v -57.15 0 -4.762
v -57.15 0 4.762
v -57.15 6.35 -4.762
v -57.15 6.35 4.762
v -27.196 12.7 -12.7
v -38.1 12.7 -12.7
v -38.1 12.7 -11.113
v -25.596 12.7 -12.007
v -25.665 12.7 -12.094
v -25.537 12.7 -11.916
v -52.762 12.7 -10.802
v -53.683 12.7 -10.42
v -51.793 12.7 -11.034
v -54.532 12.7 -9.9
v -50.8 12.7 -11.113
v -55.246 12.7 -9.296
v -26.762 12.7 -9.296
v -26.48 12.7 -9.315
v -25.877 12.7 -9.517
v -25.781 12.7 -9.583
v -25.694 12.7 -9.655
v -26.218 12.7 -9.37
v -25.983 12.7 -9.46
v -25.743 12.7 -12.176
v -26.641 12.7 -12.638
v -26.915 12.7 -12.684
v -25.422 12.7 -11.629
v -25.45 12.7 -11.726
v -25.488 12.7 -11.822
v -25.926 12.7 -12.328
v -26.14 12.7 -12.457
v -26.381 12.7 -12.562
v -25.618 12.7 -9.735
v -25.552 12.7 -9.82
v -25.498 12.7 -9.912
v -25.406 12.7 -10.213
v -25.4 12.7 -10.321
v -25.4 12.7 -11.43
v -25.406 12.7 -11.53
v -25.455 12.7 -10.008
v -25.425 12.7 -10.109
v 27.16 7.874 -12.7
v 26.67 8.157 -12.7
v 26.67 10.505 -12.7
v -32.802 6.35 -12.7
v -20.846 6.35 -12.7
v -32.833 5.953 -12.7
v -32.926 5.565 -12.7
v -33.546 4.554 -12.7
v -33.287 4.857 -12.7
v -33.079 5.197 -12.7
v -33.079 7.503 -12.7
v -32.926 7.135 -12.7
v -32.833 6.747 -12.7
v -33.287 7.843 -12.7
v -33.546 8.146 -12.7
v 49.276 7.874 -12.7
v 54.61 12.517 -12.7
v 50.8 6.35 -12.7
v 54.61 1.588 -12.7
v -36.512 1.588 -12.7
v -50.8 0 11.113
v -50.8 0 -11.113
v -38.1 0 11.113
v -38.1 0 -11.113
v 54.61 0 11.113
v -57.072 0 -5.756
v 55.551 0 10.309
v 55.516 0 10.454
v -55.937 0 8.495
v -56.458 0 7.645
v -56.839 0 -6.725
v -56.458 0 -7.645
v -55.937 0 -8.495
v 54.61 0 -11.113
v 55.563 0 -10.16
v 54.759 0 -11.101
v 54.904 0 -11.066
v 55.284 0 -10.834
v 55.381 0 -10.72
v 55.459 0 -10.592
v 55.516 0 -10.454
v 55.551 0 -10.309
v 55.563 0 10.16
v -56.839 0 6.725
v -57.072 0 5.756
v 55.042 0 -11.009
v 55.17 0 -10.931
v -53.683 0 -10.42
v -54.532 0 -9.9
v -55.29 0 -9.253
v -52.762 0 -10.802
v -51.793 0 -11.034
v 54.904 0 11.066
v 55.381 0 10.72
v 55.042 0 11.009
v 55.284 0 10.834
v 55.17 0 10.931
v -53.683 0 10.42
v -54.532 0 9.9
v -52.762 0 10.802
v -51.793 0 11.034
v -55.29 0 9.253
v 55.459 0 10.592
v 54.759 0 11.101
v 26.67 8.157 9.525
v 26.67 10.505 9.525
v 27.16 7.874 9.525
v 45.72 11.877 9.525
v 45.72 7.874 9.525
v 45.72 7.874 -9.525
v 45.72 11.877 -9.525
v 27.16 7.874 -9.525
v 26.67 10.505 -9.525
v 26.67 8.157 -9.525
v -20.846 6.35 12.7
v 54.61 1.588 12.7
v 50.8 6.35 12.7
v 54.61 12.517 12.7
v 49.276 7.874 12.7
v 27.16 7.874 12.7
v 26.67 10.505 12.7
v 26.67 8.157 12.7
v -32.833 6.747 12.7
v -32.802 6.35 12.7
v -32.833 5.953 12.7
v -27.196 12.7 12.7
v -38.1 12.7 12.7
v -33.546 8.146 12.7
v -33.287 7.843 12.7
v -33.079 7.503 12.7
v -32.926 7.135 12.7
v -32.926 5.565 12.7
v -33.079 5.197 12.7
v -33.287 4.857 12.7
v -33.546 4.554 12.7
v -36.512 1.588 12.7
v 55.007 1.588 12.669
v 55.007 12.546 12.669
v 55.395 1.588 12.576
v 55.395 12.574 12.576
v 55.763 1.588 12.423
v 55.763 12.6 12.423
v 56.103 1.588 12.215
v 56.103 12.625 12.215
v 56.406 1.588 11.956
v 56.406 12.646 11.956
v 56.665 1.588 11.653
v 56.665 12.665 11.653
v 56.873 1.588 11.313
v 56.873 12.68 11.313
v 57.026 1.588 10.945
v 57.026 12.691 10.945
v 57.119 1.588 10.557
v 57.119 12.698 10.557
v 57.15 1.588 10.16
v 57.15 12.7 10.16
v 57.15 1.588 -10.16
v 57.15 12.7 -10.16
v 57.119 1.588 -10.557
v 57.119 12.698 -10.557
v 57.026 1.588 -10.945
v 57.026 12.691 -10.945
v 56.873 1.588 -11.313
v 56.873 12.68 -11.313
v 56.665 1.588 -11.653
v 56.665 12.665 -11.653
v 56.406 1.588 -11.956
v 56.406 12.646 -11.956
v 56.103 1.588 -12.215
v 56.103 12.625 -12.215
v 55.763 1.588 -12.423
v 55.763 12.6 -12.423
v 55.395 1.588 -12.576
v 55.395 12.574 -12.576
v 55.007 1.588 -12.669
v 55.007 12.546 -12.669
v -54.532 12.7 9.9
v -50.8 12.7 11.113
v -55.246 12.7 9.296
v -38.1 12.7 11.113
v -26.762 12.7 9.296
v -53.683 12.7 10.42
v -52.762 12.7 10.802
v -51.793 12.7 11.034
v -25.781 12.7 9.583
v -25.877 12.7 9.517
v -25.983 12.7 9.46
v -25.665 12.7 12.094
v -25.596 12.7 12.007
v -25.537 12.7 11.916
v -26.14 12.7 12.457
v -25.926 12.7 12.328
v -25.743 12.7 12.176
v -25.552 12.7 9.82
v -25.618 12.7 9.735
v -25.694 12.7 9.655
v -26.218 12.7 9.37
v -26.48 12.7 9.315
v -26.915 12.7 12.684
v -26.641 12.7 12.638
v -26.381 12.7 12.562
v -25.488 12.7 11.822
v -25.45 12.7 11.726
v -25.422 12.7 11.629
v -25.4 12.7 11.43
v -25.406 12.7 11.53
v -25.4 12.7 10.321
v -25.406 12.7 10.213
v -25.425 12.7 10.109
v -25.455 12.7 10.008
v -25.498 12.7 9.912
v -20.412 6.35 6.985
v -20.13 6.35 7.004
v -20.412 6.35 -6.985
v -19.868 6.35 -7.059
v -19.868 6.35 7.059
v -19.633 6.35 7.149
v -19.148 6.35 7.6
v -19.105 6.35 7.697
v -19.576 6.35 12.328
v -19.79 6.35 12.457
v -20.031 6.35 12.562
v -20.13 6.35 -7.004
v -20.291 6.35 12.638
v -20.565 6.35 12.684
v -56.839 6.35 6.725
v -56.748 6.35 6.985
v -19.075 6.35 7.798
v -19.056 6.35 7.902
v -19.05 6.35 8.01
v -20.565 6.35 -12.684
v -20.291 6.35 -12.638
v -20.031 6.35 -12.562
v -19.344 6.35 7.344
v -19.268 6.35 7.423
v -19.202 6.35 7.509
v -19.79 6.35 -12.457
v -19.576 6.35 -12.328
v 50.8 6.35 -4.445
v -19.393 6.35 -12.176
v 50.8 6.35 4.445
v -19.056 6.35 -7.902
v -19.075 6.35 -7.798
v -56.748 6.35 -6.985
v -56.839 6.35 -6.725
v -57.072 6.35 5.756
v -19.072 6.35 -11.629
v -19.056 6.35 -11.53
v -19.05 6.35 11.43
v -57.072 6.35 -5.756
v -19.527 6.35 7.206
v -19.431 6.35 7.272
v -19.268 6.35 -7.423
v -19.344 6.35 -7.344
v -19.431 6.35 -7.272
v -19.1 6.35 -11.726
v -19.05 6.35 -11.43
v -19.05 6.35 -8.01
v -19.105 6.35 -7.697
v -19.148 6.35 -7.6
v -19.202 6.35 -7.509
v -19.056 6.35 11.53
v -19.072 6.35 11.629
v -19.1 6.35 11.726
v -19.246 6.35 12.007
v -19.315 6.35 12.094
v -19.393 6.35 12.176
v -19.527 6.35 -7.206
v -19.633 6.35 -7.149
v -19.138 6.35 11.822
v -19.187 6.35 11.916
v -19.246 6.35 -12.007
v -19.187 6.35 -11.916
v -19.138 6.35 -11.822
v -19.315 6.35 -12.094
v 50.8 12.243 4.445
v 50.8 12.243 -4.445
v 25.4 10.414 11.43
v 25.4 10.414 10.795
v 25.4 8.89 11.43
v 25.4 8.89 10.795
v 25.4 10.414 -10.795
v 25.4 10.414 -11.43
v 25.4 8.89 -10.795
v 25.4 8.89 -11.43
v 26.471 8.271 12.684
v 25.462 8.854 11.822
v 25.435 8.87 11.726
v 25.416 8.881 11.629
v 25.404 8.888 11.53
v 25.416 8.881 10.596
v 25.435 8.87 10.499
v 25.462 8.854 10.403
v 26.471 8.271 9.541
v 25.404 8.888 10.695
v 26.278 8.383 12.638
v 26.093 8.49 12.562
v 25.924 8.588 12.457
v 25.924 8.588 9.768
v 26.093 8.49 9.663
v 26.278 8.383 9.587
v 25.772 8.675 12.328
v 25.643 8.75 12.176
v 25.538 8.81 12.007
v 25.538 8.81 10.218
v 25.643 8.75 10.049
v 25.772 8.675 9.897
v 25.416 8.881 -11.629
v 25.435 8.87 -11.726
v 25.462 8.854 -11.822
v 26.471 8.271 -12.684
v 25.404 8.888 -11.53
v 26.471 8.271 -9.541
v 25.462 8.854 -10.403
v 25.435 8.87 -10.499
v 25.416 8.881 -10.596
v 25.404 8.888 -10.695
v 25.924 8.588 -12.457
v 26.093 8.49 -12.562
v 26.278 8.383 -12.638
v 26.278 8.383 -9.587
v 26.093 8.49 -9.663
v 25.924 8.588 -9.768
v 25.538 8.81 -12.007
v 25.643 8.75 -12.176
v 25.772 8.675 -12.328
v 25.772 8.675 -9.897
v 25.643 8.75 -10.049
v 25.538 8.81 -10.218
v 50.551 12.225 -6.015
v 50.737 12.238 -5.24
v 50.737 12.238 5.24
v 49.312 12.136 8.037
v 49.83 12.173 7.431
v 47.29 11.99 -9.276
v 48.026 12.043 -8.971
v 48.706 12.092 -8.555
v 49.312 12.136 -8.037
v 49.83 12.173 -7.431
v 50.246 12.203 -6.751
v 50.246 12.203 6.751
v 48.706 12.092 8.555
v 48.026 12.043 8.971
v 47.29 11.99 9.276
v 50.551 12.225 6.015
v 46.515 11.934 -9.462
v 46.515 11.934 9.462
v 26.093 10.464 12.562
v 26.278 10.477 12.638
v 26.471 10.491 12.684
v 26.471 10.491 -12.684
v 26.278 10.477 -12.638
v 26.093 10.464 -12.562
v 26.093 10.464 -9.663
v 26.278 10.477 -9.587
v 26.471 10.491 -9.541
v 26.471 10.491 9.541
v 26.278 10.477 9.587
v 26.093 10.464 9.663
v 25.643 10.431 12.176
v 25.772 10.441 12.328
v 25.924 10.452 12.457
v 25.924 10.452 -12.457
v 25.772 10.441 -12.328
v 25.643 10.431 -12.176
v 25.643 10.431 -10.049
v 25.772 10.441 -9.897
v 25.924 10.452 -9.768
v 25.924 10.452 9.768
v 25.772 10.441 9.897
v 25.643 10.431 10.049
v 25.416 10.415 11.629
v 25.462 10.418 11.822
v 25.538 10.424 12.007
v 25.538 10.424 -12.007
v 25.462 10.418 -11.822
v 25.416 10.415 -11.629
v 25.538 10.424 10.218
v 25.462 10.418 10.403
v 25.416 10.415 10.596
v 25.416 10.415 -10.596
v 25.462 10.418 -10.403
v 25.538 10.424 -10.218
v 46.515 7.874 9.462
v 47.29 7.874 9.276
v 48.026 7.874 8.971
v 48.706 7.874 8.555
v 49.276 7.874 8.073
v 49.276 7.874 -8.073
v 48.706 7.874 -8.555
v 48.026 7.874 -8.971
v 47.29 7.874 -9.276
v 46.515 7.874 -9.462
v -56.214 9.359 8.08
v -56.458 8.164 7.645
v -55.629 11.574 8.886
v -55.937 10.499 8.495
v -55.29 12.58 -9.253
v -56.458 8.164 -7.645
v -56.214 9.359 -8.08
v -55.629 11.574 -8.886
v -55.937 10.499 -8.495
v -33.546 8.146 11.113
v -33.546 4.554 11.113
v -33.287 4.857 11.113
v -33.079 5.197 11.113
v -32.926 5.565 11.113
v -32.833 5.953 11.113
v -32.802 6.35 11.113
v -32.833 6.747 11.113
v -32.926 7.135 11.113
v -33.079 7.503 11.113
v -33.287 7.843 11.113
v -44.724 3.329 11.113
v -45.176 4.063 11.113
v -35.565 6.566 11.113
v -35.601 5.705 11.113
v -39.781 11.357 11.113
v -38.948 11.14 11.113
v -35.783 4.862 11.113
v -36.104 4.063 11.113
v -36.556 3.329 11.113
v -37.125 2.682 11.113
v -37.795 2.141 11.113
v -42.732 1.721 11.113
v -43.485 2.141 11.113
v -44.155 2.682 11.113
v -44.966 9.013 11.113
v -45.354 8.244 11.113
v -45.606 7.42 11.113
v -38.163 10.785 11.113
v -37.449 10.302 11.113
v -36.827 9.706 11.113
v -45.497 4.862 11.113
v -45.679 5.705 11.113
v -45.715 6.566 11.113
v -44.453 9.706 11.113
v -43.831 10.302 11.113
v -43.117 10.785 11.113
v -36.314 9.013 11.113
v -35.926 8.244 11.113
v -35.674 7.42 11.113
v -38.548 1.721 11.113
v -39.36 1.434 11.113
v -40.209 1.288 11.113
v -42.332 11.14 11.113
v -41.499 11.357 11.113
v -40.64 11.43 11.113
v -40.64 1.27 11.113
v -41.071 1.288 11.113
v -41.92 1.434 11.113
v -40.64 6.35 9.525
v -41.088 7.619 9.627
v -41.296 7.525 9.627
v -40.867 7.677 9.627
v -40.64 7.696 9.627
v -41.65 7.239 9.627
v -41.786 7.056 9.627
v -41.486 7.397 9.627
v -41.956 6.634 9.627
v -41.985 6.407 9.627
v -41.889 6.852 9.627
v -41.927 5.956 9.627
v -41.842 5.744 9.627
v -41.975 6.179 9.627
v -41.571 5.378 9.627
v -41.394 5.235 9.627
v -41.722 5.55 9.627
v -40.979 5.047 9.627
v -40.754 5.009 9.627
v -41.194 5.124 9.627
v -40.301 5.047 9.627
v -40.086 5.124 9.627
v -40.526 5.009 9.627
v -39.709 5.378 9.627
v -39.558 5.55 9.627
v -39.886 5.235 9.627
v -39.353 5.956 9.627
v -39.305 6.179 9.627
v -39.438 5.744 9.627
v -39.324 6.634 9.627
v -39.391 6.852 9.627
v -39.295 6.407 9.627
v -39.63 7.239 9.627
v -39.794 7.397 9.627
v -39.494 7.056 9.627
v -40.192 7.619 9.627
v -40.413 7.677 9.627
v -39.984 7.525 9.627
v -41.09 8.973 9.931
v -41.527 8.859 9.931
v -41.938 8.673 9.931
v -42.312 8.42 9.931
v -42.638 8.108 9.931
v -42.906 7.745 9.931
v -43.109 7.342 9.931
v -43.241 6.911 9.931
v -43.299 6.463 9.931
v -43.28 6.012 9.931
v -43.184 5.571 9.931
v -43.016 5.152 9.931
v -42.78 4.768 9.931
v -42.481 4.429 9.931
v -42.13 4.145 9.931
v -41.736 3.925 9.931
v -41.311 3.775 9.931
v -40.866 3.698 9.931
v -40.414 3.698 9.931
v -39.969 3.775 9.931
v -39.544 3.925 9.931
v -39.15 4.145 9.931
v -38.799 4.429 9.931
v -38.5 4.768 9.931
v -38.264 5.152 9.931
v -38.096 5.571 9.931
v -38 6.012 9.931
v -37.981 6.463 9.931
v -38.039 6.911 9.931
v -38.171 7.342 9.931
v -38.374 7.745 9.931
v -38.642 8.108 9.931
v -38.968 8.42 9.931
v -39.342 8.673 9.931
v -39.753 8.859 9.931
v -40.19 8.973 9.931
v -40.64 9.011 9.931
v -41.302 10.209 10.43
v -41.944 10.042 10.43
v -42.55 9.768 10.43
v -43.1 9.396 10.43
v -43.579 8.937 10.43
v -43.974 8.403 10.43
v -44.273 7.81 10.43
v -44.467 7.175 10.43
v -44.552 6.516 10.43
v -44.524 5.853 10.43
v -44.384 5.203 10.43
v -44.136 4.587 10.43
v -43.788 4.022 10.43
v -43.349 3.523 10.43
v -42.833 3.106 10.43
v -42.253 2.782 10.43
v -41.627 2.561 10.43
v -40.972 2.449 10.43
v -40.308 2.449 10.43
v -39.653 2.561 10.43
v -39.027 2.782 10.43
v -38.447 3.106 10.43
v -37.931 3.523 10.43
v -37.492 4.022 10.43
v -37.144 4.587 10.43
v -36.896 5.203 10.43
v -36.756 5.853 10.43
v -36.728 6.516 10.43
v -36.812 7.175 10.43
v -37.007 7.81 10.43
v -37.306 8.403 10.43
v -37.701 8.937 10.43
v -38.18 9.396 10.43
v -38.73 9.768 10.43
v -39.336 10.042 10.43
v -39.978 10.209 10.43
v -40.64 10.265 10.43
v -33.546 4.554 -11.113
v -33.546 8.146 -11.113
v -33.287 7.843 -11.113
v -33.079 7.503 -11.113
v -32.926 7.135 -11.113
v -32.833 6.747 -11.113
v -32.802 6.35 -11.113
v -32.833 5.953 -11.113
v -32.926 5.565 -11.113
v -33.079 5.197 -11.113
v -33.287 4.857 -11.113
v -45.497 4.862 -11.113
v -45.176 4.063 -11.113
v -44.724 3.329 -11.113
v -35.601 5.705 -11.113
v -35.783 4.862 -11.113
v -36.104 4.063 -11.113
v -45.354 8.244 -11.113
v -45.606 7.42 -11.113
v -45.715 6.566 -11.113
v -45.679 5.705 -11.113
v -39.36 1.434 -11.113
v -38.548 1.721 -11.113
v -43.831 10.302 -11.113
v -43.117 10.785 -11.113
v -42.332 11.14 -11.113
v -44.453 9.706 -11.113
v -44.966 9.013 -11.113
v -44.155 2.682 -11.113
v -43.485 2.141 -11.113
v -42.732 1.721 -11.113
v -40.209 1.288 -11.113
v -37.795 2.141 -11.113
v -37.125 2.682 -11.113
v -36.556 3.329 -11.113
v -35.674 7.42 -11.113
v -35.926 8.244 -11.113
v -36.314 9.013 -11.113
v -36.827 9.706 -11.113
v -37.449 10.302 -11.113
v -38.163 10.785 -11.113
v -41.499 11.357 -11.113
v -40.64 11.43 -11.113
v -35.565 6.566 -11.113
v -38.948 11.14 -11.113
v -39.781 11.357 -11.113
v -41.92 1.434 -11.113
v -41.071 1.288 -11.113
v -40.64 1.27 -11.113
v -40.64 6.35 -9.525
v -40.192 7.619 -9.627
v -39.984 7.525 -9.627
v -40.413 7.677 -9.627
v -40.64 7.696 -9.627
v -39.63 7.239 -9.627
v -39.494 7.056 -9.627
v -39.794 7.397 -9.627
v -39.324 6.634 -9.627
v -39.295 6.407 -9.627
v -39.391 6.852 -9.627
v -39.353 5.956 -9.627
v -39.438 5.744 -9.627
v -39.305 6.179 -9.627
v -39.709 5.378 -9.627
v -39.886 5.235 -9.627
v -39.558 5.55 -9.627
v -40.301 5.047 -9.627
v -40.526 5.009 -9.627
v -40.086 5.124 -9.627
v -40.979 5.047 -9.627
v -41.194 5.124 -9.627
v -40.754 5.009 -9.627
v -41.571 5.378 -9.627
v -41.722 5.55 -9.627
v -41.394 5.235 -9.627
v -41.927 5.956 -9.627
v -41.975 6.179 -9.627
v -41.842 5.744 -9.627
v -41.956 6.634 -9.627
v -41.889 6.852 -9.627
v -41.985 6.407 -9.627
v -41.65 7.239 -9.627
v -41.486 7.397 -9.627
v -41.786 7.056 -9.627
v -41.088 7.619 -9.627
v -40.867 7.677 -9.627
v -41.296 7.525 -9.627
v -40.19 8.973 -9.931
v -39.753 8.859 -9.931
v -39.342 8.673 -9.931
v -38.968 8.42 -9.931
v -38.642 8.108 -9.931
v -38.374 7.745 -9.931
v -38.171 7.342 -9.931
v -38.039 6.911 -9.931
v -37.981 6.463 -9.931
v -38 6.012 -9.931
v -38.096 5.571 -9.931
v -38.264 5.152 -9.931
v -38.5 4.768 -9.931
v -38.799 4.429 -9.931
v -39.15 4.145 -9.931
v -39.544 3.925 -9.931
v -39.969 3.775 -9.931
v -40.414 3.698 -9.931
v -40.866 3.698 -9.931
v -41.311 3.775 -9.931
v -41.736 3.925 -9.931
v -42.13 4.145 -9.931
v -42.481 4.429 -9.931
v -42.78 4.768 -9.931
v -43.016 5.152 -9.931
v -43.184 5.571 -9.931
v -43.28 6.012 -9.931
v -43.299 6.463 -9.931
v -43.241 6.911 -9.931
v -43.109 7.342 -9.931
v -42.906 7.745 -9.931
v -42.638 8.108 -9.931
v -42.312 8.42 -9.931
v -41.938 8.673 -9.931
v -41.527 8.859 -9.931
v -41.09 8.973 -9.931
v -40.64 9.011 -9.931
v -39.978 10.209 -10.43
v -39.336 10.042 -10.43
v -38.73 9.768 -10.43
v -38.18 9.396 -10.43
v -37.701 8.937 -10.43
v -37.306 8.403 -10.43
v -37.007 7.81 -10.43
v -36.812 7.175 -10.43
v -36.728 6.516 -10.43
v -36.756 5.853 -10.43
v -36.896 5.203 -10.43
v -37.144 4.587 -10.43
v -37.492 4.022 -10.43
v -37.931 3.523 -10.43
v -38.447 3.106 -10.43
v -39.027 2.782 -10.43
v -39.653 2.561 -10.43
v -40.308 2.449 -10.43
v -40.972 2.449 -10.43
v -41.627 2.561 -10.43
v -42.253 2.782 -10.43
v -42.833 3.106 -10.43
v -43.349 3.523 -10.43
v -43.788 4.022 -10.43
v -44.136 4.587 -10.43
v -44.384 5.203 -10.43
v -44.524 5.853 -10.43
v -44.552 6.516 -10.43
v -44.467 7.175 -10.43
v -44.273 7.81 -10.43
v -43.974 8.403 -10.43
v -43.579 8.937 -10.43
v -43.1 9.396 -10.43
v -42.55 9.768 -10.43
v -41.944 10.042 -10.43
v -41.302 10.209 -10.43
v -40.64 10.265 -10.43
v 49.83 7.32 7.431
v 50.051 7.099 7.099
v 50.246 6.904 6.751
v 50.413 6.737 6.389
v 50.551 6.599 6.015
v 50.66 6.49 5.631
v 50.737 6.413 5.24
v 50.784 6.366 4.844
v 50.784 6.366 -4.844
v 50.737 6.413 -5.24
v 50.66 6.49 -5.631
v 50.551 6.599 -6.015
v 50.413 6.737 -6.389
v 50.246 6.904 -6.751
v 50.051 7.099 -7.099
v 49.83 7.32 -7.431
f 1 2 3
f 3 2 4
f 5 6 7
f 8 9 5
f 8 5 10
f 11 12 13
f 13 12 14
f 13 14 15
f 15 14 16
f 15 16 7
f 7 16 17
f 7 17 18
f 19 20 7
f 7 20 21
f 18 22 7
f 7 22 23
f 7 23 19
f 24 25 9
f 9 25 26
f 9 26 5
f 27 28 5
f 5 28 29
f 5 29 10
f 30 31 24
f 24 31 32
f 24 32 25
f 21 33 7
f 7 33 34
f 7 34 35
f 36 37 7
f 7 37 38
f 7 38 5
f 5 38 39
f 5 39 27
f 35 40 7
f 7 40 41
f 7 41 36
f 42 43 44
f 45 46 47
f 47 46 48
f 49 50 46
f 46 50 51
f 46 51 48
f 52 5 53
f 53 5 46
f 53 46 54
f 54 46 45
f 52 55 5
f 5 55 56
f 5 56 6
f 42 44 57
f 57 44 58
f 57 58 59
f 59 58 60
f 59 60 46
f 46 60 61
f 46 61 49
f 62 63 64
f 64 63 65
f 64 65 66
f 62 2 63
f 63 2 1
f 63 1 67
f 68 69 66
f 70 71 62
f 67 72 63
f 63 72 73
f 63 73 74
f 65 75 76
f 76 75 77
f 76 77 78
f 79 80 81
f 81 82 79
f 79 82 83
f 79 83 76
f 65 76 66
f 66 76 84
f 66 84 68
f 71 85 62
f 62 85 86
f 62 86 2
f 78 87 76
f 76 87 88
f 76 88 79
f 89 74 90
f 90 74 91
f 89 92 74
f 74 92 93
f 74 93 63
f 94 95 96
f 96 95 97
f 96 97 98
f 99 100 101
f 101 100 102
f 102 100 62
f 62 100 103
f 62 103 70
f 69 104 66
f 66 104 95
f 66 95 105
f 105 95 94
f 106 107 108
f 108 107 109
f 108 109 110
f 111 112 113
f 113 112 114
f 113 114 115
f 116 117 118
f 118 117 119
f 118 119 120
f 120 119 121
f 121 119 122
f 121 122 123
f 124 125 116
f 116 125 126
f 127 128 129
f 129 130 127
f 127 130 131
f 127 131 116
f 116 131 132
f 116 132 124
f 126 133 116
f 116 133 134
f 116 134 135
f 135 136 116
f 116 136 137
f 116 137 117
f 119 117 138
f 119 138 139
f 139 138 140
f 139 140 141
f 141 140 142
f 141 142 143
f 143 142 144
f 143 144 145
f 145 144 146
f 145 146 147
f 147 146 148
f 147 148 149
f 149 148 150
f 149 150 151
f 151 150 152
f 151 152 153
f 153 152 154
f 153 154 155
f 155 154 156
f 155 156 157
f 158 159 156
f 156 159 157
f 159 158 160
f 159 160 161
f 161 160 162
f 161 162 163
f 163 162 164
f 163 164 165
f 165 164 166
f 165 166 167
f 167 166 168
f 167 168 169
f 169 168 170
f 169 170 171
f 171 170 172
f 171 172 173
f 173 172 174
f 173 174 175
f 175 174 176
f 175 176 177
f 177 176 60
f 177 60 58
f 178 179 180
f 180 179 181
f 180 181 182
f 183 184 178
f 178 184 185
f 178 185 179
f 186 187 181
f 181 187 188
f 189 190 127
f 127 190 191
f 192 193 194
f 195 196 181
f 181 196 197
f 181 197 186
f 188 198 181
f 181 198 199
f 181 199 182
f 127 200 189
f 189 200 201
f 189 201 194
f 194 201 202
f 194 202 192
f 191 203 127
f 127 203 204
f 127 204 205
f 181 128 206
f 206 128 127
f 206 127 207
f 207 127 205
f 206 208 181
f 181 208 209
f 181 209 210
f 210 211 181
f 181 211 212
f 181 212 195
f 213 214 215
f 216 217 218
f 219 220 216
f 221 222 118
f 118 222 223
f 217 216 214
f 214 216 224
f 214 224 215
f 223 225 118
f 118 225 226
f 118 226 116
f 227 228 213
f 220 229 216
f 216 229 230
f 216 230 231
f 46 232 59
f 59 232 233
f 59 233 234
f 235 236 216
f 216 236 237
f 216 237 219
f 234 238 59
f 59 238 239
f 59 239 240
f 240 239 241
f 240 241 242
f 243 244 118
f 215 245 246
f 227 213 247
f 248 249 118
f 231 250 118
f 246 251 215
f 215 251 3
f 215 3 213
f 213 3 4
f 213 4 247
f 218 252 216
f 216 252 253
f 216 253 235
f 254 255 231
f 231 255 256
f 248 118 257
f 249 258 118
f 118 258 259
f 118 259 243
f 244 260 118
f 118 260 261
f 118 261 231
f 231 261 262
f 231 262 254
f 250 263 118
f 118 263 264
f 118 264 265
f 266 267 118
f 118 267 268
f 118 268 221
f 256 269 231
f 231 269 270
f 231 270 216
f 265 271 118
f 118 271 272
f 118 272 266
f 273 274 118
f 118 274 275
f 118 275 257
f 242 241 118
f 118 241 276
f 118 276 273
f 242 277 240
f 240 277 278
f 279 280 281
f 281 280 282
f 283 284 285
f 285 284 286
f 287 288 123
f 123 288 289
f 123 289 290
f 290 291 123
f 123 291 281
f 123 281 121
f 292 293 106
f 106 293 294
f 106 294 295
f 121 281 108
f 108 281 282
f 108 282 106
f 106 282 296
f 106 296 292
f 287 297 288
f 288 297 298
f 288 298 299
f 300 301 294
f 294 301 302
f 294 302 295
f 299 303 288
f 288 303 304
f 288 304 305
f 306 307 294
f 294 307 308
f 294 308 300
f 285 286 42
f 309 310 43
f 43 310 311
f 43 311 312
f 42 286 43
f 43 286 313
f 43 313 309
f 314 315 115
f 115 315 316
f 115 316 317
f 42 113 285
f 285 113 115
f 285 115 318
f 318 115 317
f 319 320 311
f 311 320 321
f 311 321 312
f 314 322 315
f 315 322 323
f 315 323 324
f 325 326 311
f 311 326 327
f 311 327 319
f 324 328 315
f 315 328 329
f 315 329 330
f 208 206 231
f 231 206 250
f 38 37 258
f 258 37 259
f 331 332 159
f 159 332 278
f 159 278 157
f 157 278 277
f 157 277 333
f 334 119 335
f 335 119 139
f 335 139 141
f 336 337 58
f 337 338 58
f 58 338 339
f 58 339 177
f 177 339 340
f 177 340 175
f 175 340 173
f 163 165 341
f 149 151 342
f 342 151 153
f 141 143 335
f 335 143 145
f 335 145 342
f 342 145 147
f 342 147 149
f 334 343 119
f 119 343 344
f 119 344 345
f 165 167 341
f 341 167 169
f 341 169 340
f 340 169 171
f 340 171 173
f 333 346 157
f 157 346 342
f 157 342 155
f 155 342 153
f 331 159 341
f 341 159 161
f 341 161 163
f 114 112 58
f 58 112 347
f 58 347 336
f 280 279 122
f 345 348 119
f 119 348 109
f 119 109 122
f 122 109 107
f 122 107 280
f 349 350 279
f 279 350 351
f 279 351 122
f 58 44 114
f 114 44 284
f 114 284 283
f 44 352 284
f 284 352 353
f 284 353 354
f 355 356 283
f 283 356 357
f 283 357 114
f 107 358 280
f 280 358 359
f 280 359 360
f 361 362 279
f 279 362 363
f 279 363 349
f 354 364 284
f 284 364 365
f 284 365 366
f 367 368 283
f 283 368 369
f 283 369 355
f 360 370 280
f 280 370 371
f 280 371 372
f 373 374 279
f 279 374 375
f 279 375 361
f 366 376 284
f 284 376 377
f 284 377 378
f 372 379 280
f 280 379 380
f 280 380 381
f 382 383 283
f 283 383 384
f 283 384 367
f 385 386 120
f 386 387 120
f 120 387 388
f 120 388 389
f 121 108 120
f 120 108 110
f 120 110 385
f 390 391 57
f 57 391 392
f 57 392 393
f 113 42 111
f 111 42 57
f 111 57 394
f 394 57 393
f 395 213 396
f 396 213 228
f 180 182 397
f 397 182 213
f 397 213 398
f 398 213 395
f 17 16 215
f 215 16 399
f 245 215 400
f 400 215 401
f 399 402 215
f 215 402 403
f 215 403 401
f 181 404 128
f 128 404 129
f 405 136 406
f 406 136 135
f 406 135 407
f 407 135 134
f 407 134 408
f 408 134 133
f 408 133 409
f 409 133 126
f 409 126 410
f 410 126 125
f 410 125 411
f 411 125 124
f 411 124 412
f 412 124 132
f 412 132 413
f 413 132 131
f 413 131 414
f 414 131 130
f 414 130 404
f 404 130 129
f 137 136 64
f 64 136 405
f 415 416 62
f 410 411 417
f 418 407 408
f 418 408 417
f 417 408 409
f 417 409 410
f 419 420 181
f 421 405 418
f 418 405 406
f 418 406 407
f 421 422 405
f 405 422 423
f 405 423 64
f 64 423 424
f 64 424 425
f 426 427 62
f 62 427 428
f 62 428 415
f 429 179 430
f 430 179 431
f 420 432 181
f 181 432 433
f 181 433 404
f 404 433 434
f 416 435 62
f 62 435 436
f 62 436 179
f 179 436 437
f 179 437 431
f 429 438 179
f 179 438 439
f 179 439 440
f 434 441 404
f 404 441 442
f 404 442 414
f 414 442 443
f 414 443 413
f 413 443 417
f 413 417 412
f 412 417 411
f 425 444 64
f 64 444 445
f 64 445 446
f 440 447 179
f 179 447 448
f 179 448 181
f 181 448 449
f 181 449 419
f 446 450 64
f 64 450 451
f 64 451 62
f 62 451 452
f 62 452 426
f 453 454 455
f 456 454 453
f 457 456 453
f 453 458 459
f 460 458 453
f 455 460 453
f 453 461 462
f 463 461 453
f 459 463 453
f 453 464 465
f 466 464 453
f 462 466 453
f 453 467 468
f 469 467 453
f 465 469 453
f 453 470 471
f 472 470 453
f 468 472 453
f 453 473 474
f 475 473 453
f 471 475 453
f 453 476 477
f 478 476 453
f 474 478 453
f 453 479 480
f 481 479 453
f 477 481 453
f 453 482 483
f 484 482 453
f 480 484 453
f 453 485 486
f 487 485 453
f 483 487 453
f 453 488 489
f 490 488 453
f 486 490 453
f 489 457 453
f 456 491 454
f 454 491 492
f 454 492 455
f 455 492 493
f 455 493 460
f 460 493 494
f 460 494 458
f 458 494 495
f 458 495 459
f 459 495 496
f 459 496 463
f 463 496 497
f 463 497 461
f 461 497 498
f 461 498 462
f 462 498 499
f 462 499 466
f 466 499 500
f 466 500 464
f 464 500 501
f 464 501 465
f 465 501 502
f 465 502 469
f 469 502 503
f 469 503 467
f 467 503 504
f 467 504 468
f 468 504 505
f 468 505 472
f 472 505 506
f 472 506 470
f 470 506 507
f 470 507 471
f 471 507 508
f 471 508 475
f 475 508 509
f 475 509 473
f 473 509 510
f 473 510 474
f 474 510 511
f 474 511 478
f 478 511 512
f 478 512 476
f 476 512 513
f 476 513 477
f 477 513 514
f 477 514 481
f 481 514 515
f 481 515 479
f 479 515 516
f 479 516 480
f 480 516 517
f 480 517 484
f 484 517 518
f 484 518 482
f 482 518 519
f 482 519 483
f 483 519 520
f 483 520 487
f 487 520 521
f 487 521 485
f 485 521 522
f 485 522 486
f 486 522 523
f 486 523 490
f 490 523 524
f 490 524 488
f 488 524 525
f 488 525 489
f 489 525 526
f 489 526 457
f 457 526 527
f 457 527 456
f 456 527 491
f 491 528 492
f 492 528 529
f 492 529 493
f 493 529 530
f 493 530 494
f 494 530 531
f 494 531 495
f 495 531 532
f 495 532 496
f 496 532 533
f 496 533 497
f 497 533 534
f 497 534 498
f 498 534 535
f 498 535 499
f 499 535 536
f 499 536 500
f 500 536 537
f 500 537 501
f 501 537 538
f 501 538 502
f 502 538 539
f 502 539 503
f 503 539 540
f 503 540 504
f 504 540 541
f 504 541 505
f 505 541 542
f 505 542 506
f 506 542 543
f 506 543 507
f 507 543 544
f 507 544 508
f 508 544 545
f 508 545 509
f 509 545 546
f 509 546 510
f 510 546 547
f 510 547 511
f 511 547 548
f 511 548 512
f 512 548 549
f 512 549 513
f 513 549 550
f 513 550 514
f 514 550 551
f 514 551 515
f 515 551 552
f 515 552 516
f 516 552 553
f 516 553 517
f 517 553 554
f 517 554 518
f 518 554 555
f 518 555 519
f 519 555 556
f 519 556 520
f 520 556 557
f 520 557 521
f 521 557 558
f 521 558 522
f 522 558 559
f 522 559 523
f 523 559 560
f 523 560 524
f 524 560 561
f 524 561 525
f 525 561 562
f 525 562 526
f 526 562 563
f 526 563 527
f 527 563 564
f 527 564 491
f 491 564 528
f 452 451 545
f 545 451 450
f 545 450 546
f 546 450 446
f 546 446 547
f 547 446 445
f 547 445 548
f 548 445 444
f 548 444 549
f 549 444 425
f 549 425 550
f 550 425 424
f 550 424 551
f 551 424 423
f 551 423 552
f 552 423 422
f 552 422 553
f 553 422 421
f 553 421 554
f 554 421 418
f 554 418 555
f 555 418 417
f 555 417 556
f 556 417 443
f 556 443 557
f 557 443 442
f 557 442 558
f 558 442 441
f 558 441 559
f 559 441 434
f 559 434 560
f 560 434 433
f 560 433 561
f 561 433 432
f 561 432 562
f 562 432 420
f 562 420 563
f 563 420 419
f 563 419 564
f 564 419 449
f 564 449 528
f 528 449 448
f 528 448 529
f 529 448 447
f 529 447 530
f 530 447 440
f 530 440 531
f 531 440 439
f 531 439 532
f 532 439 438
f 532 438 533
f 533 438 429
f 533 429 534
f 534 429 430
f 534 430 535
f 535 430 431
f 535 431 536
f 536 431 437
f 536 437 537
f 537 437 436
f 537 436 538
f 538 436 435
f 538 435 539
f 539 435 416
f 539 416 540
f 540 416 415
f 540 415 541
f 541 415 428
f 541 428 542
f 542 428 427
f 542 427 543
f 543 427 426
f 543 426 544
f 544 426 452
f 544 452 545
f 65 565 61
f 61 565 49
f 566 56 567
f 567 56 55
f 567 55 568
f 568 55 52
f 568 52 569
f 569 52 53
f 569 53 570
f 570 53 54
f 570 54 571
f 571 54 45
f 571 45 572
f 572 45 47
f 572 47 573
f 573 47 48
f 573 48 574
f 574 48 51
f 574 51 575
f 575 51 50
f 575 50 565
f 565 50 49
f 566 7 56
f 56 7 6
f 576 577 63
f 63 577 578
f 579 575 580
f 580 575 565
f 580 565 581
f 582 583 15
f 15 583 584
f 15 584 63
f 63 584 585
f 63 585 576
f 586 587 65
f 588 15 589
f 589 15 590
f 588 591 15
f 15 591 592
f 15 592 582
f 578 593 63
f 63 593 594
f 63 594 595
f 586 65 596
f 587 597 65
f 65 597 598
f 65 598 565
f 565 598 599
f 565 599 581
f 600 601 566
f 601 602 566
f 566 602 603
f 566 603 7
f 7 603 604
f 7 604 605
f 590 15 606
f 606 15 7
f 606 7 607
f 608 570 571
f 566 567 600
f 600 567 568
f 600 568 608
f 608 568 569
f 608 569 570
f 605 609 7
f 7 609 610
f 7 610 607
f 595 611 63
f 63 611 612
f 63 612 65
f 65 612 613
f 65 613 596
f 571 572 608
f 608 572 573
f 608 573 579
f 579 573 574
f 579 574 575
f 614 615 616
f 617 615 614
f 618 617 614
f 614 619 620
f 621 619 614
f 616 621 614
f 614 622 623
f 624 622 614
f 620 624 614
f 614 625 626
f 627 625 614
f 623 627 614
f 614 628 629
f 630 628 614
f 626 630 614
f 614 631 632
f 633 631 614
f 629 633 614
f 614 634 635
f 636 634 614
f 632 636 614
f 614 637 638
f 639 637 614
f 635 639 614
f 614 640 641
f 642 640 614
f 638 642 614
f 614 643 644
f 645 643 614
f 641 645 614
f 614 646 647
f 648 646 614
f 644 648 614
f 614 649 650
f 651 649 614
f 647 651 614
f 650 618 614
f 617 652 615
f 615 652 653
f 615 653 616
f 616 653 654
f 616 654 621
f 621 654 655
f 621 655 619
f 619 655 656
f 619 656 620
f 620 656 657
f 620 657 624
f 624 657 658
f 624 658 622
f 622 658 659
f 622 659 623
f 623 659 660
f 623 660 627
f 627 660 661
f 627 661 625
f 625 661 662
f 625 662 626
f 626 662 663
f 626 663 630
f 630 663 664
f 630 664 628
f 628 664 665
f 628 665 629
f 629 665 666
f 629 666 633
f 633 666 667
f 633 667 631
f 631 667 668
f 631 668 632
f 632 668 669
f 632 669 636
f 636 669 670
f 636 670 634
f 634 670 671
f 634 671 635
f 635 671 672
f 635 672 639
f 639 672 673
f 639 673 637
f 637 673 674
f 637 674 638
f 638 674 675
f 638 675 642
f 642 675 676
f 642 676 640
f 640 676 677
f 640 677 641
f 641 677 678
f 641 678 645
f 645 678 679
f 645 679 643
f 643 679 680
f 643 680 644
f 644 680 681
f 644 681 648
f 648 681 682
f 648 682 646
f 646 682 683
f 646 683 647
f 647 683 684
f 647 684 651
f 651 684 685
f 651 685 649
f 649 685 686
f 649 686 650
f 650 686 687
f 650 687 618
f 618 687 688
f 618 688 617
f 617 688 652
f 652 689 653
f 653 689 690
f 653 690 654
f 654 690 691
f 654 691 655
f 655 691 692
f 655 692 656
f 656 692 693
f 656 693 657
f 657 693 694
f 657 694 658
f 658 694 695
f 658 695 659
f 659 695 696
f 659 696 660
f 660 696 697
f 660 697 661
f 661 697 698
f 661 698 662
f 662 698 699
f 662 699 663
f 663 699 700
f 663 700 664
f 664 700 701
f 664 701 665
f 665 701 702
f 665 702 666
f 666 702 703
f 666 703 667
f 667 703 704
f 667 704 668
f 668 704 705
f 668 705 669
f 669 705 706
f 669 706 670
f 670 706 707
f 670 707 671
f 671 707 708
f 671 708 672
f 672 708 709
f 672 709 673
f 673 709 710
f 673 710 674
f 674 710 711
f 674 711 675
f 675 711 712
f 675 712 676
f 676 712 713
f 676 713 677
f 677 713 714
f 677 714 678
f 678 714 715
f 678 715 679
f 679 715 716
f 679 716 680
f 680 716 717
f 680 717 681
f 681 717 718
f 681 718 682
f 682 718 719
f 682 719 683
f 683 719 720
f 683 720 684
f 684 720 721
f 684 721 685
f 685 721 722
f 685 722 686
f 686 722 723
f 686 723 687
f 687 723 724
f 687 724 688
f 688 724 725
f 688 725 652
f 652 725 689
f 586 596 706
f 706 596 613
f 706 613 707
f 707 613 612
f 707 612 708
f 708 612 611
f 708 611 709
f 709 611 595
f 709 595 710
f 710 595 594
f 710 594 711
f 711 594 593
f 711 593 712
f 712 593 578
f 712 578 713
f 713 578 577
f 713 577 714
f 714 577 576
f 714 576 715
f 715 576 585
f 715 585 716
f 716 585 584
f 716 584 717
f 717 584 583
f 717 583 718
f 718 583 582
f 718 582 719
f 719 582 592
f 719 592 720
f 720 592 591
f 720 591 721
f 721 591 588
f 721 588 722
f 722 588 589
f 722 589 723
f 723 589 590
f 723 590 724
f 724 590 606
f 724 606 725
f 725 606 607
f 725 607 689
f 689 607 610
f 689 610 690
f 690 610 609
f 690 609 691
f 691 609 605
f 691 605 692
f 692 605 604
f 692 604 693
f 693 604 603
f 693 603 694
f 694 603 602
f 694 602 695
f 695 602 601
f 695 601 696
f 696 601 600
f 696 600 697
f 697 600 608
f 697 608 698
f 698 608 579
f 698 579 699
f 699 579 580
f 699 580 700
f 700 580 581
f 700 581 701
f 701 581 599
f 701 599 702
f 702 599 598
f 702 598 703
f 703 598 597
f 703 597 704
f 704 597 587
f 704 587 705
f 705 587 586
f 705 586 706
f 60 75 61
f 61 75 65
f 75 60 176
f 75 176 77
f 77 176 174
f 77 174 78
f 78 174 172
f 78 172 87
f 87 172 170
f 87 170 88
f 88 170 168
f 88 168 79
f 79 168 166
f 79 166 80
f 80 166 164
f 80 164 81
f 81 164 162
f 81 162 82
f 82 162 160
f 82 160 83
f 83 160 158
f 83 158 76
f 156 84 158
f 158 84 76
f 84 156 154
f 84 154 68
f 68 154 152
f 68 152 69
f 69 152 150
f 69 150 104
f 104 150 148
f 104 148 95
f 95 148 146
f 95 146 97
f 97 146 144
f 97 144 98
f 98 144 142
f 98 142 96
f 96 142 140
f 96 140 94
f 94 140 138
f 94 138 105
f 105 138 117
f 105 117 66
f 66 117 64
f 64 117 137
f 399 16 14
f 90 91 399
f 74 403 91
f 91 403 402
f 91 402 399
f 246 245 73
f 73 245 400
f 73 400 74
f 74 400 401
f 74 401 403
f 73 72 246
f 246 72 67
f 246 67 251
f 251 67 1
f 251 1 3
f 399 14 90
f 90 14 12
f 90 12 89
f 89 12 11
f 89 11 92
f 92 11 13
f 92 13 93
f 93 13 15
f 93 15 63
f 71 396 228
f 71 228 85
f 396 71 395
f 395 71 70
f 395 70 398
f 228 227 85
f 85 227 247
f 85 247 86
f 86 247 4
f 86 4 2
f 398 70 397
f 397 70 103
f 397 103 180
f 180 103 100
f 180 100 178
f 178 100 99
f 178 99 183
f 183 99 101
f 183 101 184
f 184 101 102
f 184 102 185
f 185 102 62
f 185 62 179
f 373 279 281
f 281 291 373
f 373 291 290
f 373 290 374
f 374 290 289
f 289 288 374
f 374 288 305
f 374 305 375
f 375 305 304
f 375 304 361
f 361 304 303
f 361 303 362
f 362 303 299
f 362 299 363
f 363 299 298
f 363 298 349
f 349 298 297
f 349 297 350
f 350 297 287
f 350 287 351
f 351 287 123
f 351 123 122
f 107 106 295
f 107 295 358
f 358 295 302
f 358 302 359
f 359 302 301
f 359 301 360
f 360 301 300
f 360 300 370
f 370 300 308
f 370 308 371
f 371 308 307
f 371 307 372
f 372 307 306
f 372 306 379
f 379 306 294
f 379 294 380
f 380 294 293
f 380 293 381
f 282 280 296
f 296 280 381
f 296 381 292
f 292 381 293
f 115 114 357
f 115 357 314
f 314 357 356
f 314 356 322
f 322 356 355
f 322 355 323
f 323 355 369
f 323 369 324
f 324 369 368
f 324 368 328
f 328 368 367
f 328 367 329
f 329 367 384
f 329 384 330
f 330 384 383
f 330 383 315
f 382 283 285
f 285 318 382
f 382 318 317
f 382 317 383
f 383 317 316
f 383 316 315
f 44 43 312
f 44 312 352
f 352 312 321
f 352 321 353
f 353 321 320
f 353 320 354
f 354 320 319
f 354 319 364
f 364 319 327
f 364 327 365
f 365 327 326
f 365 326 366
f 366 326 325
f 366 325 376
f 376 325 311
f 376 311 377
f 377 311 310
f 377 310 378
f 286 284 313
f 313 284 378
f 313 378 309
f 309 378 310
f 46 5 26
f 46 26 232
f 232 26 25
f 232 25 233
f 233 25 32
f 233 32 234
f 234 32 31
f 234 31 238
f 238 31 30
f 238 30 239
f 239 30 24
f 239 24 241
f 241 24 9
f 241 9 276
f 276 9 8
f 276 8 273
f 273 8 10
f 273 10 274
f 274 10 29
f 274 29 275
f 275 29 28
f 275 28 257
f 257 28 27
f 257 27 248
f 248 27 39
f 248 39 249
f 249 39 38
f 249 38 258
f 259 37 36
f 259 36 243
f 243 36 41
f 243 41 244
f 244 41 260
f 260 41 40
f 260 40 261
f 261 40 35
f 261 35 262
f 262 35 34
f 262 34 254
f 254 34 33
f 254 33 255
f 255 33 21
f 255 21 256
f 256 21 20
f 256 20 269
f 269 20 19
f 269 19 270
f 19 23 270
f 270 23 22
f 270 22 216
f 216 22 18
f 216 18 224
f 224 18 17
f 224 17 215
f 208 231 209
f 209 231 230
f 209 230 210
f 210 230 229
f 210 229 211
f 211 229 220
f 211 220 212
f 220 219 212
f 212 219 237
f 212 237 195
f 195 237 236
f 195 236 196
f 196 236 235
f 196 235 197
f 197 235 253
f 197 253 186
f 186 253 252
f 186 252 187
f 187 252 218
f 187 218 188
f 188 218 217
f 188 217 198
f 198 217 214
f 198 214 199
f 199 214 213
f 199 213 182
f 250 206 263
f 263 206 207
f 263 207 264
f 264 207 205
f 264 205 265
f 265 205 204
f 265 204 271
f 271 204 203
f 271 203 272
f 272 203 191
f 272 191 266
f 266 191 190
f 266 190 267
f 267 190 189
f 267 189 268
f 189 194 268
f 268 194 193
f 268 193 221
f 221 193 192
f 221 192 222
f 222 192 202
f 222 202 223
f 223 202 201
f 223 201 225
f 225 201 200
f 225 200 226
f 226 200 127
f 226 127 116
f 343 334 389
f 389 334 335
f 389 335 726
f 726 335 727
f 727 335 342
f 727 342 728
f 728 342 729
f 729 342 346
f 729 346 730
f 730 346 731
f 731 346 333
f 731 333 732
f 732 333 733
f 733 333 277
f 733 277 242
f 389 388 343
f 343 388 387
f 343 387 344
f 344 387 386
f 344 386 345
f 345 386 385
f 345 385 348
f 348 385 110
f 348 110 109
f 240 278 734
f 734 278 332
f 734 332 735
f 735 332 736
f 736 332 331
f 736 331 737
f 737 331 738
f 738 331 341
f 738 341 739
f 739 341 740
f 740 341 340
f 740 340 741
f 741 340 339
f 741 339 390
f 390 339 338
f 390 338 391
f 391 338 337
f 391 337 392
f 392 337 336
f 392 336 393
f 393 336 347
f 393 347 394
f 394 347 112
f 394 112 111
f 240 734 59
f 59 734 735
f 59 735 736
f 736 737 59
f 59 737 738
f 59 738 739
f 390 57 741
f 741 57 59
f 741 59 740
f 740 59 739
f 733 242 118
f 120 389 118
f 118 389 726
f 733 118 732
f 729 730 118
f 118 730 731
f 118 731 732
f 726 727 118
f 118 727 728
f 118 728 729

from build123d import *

# Parameters (mm, degrees)
BOSS_EXTRUDE1_DEPTH = 12.7
SKETCH2_W           = 19.05
SKETCH2_H           = 6.35
CUT_EXTRUDE1_DEPTH  = 107.95
CUT_EXTRUDE2_DEPTH  = 64.816710194
CHAMFER1_SIZE       = 6.978592645
CHAMFER1_SIZE_2     = 2.54
CUT_EXTRUDE3_DEPTH  = 1.5875
CHAMFER3_SIZE       = 1.5875
FILLET1_R           = 6.35
FILLET2_R           = 1.27
FILLET3_R           = 5.08
CHAMFER4_SIZE       = 1.524


# Some blends are built 0.0001 mm under size
with BuildPart() as part:
    # Sketch1 → Boss-Extrude1 (new body)
    with BuildSketch(Plane(origin=(0, 0, 0), x_dir=(1, 0, 0), z_dir=(0, 1, 0))):
        with BuildLine():
            Line((-50.8, 12.7), (-57.15, 12.7))
            Line((-57.15, 12.7), (-57.15, 6.35))
            Line((-57.15, 6.35), (-57.15, -6.35))
            Line((-57.15, -6.35), (-57.15, -12.7))
            Line((-57.15, -12.7), (-50.8, -12.7))
            Line((-50.8, -12.7), (54.61, -12.7))
            ThreePointArc((54.61, -12.7), (56.406051224, -11.956051224), (57.15, -10.16))
            Line((57.15, -10.16), (57.15, 10.16))
            ThreePointArc((57.15, 10.16), (56.406051224, 11.956051224), (54.61, 12.7))
            Line((54.61, 12.7), (-50.8, 12.7))
        make_face()
    extrude(amount=BOSS_EXTRUDE1_DEPTH)

    # Sketch2 → Cut-Extrude1 (cut)
    with BuildSketch(Plane.ZY.offset(57.15)):
        with Locations((0, 9.525)):
            Rectangle(SKETCH2_W, SKETCH2_H)
    extrude(amount=-CUT_EXTRUDE1_DEPTH, mode=Mode.SUBTRACT)

    # Sketch3 → Cut-Extrude2 (cut, through all)
    with BuildSketch(Plane.XY.offset(12.7)):
        Polygon((25.4, 10.414), (57.15, 12.7), (-25.4, 12.7), (-19.05, 6.35), (50.8, 6.35), (50.8, 7.874), (27.15976362, 7.874), (25.4, 8.89), align=None)
    extrude(amount=-CUT_EXTRUDE2_DEPTH, mode=Mode.SUBTRACT)

    # Chamfer1
    # the kernel refuses this chamfer: 6.978592645, 2.54 mm, written as the material it adds along each edge
    with BuildSketch(Plane(origin=(-57.15, 6.35, 9.525), x_dir=(0, 0.9999130865277316, 0.013184058198642549), z_dir=(1, 0, 0))) as chamfer1_piece_1_section:
        Polygon((CHAMFER1_SIZE * 0.999913086587, -CHAMFER1_SIZE * 0.0131840581994), (-CHAMFER1_SIZE_2 * 0.0131840581987, -CHAMFER1_SIZE_2 * 0.999913086528), (0, 0), align=None)
    chamfer1_piece_1 = extrude(amount=56.203828281, mode=Mode.PRIVATE)
    chamfer1_piece_1 = split(chamfer1_piece_1, bisect_by=Plane(origin=(-39.199121236, 12.7, 8.706690515), z_dir=(0, -1, 0)), keep=Keep.TOP, mode=Mode.PRIVATE)
    chamfer1_piece_1 = split(chamfer1_piece_1, bisect_by=Plane(origin=(-30.223681853, 17.523681853, 8.706690515), z_dir=(-0.7071067811865448, -0.7071067811865503, 0)), keep=Keep.TOP, mode=Mode.PRIVATE)
    add(chamfer1_piece_1)
    with BuildSketch(Plane(origin=(-57.15, 6.35, -9.525), x_dir=(0, -0.09904090225207035, 0.9950833631817466), z_dir=(1, 0, 0))) as chamfer1_piece_2_section:
        Polygon((CHAMFER1_SIZE_2 * 0.995083363182, -CHAMFER1_SIZE_2 * 0.099040902252), (-CHAMFER1_SIZE * 0.099040902258, -CHAMFER1_SIZE * 0.995083363241), (0, 0), align=None)
    chamfer1_piece_2 = extrude(amount=56.203828281, mode=Mode.PRIVATE)
    chamfer1_piece_2 = split(chamfer1_piece_2, bisect_by=Plane(origin=(-30.223681853, 17.523681853, -8.706690515), z_dir=(-0.7071067811865448, -0.7071067811865503, 0)), keep=Keep.TOP, mode=Mode.PRIVATE)
    chamfer1_piece_2 = split(chamfer1_piece_2, bisect_by=Plane(origin=(-39.199121236, 12.7, -8.706690515), z_dir=(0, -1, 0)), keep=Keep.TOP, mode=Mode.PRIVATE)
    add(chamfer1_piece_2)

    # Sketch4 → Cut-Extrude3 (cut)
    with BuildSketch(Plane.XY.offset(12.7)):
        with BuildLine():
            Line((-57.15, 12.7), (-57.15, 0))
            Line((-57.15, 0), (-38.1, 0))
            Line((-38.1, 0), (-33.546051224, 4.553948776))
            ThreePointArc((-33.546051224, 4.553948776), (-32.802102448, 6.35), (-33.546051224, 8.146051224))
            Line((-33.546051224, 8.146051224), (-38.1, 12.7))
            Line((-38.1, 12.7), (-57.15, 12.7))
        make_face()
    cut_extrude3 = extrude(amount=-CUT_EXTRUDE3_DEPTH, mode=Mode.SUBTRACT)

    # Sketch6 → Cut-Revolve1 (revolve, cut)
    with BuildSketch(Plane.ZY.offset(40.64)):
        with BuildLine():
            Line((11.1125, 6.35), (11.1125, 11.43))
            ThreePointArc((11.1125, 11.43), (9.931118256, 9.01113492), (9.525, 6.35))
            Line((9.525, 6.35), (11.1125, 6.35))
        make_face()
    cut_revolve1 = revolve(axis=Axis((-40.64, 6.35, 12.7), (0, 0, -1)), mode=Mode.SUBTRACT)

    # Mirror1: Cut-Extrude3, Cut-Revolve1 across plane
    add(cut_extrude3.mirror(Plane(origin=(0, 0, 0), x_dir=(1, 0, 0), z_dir=(0, 0, -1))), mode=Mode.SUBTRACT)
    add(cut_revolve1.mirror(Plane(origin=(0, 0, 0), x_dir=(1, 0, 0), z_dir=(0, 0, -1))), mode=Mode.SUBTRACT)

    # Chamfer3
    chamfer3_edges = [part.edges().sort_by_distance(p)[0] for p in [
        (8.255, 0, 12.7),
        (56.406051224, 0, 11.956051224),
        (57.15, 0, 0),
        (56.406051224, 0, -11.956051224),
        (8.255, 0, -12.7),
    ]]
    chamfer(chamfer3_edges, length=CHAMFER3_SIZE)

    # Fillet1
    fillet1_edges = [part.edges().sort_by_distance(p)[0] for p in [
        (-57.15, 6.35, -11.1125),
        (-57.15, 6.35, 11.1125),
    ]]
    fillet(fillet1_edges, radius=FILLET1_R)

    # Fillet2
    fillet2_edges = [part.edges().sort_by_distance(p)[0] for p in [
        (-22.225, 9.525, 8.140605494),
        (-22.225, 9.525, -8.140605494),
        (25.4, 9.652, -9.525),
        (-22.225, 9.525, 12.7),
        (25.4, 9.652, 12.7),
        (25.4, 9.652, 9.525),
        (25.4, 9.652, -12.7),
        (-22.225, 9.525, -12.7),
    ]]
    fillet(fillet2_edges, radius=FILLET2_R)

    # Fillet3
    fillet3_edges = [part.edges().sort_by_distance(p)[0] for p in [
        (50.8, 10.0584, -9.525),
        (50.8, 10.0584, 9.525),
    ]]
    fillet(fillet3_edges, radius=FILLET3_R)

    # Chamfer4
    chamfer4_edges = [part.edges().sort_by_distance(p)[0] for p in [
        (50.8, 7.874, -8.5725),
        (50.8, 7.874, 8.5725),
    ]]
    chamfer(chamfer4_edges, length=CHAMFER4_SIZE - 0.0001)  # a hair under: the kernel refuses the full size


solid = part.part
